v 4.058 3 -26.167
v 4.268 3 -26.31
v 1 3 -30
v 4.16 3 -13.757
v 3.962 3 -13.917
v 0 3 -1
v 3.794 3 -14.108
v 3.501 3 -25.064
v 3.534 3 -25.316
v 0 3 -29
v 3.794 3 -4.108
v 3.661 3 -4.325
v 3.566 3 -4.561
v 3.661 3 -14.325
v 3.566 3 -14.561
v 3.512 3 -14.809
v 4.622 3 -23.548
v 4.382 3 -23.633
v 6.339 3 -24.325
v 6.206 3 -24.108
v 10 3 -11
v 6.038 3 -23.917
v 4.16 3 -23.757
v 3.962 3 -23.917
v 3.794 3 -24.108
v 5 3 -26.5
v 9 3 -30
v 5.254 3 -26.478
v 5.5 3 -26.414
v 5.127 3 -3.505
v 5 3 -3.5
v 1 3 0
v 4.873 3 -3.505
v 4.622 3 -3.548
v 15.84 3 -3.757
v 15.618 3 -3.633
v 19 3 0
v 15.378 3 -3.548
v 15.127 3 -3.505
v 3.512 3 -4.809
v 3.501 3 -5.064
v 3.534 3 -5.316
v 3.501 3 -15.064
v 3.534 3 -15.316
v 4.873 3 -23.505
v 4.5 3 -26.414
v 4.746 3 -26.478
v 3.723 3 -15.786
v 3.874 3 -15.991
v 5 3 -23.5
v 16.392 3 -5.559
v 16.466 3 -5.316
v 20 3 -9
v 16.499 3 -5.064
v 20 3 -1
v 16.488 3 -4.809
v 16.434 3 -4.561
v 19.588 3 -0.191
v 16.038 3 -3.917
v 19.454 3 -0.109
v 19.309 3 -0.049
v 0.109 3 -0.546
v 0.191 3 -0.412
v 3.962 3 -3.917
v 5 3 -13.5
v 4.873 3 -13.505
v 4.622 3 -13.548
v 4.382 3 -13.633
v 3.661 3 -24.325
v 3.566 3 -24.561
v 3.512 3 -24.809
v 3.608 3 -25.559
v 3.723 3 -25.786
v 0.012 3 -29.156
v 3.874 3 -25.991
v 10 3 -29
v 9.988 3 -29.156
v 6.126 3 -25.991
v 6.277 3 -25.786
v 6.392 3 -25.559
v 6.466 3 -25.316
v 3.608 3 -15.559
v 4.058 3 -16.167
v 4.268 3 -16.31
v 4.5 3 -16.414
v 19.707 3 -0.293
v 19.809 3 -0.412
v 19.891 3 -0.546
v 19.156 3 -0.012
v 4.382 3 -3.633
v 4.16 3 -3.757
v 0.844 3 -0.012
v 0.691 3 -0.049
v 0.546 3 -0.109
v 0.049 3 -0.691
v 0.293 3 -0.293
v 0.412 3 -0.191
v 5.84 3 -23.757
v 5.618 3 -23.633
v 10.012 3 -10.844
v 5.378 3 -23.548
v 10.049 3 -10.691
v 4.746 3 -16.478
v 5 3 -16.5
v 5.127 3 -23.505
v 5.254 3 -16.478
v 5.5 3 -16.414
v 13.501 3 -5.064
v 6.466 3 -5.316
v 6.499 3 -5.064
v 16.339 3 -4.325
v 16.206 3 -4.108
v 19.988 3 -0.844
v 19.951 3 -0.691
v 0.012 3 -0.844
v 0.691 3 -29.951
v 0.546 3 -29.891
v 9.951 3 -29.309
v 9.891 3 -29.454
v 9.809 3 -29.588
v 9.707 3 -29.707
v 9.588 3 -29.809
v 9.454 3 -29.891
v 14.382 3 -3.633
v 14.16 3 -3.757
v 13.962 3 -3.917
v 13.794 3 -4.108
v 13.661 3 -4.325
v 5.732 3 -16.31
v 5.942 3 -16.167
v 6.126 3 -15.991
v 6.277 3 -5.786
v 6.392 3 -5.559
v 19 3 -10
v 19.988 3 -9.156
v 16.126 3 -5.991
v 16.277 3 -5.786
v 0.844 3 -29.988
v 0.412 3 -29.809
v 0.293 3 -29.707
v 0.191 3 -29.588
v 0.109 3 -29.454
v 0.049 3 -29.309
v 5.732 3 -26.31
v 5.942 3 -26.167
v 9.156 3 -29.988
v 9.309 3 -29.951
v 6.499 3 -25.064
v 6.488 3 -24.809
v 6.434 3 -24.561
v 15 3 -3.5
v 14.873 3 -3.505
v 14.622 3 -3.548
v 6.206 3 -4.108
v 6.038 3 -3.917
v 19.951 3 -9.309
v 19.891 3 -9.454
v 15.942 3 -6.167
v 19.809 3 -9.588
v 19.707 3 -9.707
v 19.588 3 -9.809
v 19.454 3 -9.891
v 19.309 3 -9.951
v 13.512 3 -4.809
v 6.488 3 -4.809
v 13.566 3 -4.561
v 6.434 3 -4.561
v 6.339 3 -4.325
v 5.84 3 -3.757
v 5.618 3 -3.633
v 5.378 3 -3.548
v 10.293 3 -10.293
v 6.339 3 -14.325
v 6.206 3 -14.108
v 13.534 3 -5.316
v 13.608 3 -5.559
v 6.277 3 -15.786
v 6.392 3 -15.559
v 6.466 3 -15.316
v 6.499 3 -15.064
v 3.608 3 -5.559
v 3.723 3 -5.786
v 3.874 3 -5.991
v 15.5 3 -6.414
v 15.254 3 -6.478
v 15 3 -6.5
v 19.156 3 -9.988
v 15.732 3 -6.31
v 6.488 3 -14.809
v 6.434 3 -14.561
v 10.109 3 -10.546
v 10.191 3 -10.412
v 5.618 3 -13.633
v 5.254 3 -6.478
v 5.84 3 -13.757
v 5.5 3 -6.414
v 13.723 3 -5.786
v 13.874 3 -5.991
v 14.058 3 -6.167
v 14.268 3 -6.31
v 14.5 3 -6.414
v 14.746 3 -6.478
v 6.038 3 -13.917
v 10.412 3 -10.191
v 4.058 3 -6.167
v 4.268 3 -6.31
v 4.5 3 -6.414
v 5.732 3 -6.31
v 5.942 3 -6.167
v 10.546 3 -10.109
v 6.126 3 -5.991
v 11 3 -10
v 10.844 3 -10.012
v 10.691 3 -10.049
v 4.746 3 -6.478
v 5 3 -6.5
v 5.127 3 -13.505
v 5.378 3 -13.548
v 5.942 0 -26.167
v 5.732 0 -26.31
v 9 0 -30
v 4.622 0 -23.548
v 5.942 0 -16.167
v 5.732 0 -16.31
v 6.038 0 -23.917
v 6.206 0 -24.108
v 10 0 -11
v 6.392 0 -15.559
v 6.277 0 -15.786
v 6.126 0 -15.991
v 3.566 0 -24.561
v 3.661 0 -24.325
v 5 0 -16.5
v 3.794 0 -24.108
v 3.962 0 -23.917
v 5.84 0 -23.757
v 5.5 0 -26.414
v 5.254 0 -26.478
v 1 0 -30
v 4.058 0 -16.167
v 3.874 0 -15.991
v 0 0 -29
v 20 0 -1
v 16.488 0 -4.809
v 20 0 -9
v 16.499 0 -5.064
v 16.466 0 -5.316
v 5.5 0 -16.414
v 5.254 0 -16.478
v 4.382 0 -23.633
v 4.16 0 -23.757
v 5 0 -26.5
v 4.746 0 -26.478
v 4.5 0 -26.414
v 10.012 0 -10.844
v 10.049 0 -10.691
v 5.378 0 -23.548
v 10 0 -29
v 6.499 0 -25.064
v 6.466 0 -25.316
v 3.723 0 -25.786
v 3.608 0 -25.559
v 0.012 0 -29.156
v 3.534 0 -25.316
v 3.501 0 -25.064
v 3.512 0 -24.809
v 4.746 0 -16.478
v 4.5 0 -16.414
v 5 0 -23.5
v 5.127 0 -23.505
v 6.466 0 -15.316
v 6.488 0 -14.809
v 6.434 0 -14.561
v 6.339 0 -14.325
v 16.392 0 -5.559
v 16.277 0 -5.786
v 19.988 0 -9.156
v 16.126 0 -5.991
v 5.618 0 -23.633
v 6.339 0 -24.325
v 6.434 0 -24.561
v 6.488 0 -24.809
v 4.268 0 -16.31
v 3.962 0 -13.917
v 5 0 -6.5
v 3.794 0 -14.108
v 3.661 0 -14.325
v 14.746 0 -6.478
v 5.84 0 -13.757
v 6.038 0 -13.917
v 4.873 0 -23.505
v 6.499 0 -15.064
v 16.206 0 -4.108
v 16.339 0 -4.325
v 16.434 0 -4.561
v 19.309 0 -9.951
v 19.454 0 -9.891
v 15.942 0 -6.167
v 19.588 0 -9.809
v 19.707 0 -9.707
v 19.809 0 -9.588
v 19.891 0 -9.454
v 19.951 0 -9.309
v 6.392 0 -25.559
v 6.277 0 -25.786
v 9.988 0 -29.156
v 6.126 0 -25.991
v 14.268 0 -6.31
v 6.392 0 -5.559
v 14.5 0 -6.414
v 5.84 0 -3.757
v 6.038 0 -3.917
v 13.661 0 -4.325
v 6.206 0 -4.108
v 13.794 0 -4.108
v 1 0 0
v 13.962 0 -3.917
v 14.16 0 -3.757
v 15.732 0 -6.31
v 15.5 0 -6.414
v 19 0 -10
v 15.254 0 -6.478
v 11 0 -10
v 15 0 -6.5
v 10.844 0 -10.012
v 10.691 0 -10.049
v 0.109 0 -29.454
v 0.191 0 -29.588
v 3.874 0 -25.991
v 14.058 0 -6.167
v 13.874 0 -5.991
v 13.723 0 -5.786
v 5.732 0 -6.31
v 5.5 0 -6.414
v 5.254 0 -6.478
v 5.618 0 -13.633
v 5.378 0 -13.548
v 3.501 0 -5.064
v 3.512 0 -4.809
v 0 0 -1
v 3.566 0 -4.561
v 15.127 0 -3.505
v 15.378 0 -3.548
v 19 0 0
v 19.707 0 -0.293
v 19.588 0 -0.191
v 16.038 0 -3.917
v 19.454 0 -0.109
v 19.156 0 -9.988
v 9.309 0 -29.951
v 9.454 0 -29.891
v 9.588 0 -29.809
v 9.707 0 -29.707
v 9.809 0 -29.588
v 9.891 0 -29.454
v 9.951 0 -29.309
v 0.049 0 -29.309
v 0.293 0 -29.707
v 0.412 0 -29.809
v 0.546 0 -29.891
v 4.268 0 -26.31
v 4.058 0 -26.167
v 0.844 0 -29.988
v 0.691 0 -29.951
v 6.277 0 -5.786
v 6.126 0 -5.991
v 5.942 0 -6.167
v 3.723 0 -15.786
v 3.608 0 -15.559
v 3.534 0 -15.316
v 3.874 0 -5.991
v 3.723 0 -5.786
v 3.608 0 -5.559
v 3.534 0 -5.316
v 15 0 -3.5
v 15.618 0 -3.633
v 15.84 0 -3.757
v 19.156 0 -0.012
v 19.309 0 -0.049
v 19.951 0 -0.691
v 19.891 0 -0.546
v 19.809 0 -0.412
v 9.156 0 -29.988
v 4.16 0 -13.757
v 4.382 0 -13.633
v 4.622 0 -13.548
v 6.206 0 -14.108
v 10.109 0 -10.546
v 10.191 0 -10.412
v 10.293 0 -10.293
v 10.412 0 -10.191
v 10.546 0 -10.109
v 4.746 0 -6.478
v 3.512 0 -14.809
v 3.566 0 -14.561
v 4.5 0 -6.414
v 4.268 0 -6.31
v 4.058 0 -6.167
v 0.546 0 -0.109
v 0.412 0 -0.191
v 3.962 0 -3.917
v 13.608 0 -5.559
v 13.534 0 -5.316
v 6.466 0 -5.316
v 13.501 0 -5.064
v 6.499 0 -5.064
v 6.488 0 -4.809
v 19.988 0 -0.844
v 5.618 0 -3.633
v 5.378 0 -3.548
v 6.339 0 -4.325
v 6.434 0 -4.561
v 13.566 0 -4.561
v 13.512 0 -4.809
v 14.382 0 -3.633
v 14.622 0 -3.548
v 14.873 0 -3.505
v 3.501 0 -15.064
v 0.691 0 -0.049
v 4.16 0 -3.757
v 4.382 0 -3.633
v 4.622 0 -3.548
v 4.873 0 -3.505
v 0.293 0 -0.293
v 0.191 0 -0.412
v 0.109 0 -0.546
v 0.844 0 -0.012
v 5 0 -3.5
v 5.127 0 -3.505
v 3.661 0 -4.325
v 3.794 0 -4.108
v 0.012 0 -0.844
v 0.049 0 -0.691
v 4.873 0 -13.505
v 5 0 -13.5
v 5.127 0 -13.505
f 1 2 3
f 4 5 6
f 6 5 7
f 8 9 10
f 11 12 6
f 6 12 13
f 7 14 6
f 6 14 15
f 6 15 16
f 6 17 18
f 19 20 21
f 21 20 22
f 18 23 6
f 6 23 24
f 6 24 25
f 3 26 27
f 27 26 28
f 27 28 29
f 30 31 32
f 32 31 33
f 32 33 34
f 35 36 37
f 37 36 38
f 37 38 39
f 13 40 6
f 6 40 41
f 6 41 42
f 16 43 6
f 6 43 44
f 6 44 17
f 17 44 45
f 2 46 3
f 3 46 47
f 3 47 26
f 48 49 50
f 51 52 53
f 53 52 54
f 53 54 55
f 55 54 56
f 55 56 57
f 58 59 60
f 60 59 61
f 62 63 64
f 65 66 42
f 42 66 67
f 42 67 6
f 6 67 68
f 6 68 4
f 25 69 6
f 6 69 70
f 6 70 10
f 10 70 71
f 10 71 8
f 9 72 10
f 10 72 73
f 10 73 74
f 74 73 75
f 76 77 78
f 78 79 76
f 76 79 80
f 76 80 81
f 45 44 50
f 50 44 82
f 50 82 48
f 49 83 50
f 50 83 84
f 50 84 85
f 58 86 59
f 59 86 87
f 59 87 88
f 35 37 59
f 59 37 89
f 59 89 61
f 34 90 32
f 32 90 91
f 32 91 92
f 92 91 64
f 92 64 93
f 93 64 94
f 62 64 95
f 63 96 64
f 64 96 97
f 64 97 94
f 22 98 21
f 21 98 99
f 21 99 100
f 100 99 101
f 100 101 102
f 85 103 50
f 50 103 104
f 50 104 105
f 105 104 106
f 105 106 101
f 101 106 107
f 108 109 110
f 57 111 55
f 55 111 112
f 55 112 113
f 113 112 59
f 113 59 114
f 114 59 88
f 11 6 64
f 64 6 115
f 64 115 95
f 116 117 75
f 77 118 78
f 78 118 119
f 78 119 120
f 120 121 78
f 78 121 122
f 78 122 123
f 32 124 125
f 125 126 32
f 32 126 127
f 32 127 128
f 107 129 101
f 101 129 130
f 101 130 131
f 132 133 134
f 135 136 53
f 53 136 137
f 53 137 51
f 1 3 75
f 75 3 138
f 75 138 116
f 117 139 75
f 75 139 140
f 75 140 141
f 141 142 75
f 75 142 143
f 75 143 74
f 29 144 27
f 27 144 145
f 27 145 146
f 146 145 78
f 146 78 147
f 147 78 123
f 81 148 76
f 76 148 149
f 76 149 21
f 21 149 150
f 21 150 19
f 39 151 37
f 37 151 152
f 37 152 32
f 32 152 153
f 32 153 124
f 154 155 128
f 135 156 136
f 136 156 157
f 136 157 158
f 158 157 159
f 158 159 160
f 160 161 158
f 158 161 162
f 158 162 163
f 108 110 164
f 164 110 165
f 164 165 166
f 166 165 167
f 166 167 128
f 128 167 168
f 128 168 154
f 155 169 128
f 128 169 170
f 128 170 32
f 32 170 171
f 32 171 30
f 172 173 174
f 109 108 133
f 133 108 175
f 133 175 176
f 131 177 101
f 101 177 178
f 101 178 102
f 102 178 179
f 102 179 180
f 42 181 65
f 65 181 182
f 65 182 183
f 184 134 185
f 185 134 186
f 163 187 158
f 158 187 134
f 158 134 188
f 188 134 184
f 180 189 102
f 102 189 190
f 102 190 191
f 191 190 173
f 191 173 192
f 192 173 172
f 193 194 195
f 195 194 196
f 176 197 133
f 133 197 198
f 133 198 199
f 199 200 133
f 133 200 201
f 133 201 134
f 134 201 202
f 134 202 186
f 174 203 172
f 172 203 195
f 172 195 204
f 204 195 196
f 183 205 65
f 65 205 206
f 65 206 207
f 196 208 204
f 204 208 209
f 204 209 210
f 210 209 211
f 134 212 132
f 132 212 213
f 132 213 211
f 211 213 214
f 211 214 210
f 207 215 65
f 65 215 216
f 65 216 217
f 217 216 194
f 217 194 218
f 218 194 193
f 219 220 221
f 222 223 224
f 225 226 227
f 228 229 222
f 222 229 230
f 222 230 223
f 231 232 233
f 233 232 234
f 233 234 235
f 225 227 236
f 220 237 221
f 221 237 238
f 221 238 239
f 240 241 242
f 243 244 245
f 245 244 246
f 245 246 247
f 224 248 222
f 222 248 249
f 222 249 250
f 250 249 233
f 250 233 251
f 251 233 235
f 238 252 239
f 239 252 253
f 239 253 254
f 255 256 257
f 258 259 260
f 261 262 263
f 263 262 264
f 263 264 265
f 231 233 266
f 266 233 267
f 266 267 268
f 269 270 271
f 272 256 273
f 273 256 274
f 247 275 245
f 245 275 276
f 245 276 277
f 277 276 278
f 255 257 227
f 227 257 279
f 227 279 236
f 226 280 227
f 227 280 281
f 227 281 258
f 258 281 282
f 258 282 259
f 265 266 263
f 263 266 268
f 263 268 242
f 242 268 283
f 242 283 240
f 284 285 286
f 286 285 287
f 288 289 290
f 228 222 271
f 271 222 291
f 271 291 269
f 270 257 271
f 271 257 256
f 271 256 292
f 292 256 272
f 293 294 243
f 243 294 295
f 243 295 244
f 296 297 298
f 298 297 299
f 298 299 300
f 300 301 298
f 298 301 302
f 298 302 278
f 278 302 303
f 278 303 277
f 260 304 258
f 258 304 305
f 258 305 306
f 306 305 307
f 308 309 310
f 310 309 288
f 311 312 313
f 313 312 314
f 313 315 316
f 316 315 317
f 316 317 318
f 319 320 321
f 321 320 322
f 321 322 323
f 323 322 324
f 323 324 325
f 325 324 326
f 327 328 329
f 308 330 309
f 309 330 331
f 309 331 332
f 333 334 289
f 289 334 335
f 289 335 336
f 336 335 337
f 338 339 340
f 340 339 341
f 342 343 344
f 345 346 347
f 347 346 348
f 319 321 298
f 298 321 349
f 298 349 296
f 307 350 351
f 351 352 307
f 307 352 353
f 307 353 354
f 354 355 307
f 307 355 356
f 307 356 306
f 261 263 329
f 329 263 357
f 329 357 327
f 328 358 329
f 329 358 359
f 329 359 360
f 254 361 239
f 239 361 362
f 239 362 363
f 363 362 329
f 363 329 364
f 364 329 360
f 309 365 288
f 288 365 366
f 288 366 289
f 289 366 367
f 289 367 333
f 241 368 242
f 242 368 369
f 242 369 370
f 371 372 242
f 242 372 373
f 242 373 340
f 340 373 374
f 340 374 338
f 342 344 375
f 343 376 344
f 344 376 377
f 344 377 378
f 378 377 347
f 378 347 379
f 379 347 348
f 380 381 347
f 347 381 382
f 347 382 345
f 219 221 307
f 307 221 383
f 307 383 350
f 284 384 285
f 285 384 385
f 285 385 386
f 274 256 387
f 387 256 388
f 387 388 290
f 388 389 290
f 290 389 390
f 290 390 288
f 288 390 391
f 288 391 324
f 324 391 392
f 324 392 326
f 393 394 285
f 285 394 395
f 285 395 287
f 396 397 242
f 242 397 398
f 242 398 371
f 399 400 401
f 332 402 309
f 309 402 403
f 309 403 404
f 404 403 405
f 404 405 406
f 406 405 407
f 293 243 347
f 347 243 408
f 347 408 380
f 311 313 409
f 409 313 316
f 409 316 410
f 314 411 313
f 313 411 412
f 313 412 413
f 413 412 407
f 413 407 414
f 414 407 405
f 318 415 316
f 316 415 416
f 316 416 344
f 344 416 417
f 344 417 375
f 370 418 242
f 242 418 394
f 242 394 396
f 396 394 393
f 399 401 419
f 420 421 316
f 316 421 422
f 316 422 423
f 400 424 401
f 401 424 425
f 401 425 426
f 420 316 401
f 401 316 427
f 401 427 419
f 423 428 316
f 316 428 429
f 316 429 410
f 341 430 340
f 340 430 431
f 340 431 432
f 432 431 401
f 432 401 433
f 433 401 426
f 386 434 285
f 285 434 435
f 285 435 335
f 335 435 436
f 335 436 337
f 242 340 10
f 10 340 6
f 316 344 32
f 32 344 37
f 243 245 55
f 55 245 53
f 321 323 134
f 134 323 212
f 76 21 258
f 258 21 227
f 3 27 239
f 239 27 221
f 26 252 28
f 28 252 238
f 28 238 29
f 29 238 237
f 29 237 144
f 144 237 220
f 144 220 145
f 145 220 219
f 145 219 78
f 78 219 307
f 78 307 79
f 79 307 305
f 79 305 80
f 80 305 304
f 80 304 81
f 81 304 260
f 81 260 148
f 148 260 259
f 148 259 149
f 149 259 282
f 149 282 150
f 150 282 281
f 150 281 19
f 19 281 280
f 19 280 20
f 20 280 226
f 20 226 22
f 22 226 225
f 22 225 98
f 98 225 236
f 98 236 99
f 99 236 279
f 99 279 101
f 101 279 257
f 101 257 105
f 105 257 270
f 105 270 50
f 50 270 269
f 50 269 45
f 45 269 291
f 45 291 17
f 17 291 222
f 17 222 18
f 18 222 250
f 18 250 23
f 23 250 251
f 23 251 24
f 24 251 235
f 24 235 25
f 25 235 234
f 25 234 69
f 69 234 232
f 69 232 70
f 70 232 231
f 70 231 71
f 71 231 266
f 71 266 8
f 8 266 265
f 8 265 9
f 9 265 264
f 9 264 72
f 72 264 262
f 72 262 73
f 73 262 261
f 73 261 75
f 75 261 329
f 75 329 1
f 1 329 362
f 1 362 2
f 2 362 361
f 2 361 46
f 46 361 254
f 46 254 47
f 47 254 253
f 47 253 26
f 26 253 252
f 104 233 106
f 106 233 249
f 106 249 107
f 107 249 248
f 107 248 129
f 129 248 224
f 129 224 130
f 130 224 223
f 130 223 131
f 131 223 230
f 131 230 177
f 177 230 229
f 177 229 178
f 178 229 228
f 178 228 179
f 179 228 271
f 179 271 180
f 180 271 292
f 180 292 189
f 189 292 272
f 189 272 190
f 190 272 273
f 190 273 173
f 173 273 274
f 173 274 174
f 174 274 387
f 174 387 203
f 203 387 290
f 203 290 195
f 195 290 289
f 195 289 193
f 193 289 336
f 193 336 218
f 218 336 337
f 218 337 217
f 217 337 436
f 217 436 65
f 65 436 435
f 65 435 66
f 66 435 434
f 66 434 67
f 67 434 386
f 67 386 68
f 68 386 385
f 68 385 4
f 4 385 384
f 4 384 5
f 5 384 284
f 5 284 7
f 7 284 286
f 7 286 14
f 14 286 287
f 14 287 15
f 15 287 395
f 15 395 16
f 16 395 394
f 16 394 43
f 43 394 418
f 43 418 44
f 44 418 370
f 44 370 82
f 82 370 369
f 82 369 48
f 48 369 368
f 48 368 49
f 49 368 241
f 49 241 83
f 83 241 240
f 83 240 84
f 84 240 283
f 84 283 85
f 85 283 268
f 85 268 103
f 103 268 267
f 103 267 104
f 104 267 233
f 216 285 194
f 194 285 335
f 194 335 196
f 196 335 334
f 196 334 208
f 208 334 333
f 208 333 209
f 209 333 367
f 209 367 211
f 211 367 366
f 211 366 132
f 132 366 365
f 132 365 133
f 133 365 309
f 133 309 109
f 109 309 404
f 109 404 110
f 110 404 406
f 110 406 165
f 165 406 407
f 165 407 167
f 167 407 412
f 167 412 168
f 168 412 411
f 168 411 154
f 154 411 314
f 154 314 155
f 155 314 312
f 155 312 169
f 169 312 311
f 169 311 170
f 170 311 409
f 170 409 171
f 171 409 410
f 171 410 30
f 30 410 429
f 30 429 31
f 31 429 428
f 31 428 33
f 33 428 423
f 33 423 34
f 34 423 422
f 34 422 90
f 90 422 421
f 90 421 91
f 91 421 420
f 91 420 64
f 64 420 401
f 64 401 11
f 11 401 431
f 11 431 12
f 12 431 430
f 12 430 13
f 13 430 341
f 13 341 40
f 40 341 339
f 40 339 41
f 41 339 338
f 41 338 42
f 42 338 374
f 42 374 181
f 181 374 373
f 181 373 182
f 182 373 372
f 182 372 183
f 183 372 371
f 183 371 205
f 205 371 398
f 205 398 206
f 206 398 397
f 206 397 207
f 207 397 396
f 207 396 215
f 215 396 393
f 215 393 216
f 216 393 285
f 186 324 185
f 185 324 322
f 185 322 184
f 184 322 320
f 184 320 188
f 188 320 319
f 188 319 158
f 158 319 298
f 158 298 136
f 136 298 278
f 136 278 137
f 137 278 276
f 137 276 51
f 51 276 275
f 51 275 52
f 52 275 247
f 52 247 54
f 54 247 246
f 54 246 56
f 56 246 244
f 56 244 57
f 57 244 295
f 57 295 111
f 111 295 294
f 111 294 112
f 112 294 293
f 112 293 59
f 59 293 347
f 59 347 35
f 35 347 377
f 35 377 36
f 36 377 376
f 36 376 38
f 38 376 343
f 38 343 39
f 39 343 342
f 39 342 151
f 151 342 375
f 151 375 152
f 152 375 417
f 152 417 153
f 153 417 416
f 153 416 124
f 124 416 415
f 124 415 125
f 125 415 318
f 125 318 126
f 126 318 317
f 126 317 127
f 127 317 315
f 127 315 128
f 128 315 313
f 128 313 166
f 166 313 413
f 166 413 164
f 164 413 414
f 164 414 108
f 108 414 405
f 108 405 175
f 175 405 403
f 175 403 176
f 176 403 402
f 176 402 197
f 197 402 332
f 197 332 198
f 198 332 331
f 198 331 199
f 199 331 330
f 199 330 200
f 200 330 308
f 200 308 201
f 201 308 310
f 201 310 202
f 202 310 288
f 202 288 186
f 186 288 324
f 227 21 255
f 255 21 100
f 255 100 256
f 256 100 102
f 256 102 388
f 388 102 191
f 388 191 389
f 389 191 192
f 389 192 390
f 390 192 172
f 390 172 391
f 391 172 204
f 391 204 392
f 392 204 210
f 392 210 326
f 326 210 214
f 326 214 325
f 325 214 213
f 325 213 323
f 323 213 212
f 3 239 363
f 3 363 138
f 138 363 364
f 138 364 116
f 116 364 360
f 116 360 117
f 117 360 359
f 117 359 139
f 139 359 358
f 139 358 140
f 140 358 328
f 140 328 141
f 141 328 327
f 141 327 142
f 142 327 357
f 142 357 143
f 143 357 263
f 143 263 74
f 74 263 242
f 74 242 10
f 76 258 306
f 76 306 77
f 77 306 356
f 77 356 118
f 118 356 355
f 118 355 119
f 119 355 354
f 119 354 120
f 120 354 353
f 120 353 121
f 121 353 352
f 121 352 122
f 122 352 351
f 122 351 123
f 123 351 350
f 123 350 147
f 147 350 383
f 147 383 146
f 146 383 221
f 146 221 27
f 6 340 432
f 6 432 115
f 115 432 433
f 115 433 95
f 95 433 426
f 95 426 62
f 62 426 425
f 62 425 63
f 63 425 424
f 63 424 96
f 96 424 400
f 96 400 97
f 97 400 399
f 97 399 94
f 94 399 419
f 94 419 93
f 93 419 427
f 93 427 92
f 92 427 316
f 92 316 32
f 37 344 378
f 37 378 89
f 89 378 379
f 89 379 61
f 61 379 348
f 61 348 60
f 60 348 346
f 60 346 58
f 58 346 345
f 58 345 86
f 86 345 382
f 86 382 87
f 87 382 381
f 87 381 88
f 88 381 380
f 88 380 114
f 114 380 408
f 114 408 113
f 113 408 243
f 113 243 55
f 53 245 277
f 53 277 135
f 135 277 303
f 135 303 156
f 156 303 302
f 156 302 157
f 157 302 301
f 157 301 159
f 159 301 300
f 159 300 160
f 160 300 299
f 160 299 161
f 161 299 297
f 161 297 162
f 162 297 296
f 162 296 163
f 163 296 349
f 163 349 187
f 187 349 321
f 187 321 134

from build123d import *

# Parameters (mm, degrees)
SKETCH1_R           = 1.5
BOSS_EXTRUDE1_DEPTH = 3
FILLET1_R           = 1
FILLET2_R           = 1


with BuildPart() as part:
    # Sketch1 → Boss-Extrude1 (new body)
    with BuildSketch(Plane(origin=(0, 0, 0), x_dir=(1, 0, 0), z_dir=(0, 1, 0))):
        Polygon((0, 0), (10, 0), (20, 0), (20, 10), (10, 10), (10, 30), (0, 30), align=None)
        with Locations((5, 25)):
            Circle(SKETCH1_R, mode=Mode.SUBTRACT)
        with Locations((5, 15)):
            Circle(SKETCH1_R, mode=Mode.SUBTRACT)
        with Locations((5, 5)):
            Circle(SKETCH1_R, mode=Mode.SUBTRACT)
        with Locations((15, 5)):
            Circle(SKETCH1_R, mode=Mode.SUBTRACT)
    extrude(amount=BOSS_EXTRUDE1_DEPTH)

    # Fillet1
    fillet1_edges = [part.edges().sort_by_distance(p)[0] for p in [
        (10, 1.5, -10),
    ]]
    fillet(fillet1_edges, radius=FILLET1_R)

    # Fillet2
    fillet2_edges = [part.edges().sort_by_distance(p)[0] for p in [
        (0, 1.5, -30),
        (10, 1.5, -30),
        (20, 1.5, -10),
        (20, 1.5, 0),
        (0, 1.5, 0),
    ]]
    fillet(fillet2_edges, radius=FILLET2_R)


solid = part.part
